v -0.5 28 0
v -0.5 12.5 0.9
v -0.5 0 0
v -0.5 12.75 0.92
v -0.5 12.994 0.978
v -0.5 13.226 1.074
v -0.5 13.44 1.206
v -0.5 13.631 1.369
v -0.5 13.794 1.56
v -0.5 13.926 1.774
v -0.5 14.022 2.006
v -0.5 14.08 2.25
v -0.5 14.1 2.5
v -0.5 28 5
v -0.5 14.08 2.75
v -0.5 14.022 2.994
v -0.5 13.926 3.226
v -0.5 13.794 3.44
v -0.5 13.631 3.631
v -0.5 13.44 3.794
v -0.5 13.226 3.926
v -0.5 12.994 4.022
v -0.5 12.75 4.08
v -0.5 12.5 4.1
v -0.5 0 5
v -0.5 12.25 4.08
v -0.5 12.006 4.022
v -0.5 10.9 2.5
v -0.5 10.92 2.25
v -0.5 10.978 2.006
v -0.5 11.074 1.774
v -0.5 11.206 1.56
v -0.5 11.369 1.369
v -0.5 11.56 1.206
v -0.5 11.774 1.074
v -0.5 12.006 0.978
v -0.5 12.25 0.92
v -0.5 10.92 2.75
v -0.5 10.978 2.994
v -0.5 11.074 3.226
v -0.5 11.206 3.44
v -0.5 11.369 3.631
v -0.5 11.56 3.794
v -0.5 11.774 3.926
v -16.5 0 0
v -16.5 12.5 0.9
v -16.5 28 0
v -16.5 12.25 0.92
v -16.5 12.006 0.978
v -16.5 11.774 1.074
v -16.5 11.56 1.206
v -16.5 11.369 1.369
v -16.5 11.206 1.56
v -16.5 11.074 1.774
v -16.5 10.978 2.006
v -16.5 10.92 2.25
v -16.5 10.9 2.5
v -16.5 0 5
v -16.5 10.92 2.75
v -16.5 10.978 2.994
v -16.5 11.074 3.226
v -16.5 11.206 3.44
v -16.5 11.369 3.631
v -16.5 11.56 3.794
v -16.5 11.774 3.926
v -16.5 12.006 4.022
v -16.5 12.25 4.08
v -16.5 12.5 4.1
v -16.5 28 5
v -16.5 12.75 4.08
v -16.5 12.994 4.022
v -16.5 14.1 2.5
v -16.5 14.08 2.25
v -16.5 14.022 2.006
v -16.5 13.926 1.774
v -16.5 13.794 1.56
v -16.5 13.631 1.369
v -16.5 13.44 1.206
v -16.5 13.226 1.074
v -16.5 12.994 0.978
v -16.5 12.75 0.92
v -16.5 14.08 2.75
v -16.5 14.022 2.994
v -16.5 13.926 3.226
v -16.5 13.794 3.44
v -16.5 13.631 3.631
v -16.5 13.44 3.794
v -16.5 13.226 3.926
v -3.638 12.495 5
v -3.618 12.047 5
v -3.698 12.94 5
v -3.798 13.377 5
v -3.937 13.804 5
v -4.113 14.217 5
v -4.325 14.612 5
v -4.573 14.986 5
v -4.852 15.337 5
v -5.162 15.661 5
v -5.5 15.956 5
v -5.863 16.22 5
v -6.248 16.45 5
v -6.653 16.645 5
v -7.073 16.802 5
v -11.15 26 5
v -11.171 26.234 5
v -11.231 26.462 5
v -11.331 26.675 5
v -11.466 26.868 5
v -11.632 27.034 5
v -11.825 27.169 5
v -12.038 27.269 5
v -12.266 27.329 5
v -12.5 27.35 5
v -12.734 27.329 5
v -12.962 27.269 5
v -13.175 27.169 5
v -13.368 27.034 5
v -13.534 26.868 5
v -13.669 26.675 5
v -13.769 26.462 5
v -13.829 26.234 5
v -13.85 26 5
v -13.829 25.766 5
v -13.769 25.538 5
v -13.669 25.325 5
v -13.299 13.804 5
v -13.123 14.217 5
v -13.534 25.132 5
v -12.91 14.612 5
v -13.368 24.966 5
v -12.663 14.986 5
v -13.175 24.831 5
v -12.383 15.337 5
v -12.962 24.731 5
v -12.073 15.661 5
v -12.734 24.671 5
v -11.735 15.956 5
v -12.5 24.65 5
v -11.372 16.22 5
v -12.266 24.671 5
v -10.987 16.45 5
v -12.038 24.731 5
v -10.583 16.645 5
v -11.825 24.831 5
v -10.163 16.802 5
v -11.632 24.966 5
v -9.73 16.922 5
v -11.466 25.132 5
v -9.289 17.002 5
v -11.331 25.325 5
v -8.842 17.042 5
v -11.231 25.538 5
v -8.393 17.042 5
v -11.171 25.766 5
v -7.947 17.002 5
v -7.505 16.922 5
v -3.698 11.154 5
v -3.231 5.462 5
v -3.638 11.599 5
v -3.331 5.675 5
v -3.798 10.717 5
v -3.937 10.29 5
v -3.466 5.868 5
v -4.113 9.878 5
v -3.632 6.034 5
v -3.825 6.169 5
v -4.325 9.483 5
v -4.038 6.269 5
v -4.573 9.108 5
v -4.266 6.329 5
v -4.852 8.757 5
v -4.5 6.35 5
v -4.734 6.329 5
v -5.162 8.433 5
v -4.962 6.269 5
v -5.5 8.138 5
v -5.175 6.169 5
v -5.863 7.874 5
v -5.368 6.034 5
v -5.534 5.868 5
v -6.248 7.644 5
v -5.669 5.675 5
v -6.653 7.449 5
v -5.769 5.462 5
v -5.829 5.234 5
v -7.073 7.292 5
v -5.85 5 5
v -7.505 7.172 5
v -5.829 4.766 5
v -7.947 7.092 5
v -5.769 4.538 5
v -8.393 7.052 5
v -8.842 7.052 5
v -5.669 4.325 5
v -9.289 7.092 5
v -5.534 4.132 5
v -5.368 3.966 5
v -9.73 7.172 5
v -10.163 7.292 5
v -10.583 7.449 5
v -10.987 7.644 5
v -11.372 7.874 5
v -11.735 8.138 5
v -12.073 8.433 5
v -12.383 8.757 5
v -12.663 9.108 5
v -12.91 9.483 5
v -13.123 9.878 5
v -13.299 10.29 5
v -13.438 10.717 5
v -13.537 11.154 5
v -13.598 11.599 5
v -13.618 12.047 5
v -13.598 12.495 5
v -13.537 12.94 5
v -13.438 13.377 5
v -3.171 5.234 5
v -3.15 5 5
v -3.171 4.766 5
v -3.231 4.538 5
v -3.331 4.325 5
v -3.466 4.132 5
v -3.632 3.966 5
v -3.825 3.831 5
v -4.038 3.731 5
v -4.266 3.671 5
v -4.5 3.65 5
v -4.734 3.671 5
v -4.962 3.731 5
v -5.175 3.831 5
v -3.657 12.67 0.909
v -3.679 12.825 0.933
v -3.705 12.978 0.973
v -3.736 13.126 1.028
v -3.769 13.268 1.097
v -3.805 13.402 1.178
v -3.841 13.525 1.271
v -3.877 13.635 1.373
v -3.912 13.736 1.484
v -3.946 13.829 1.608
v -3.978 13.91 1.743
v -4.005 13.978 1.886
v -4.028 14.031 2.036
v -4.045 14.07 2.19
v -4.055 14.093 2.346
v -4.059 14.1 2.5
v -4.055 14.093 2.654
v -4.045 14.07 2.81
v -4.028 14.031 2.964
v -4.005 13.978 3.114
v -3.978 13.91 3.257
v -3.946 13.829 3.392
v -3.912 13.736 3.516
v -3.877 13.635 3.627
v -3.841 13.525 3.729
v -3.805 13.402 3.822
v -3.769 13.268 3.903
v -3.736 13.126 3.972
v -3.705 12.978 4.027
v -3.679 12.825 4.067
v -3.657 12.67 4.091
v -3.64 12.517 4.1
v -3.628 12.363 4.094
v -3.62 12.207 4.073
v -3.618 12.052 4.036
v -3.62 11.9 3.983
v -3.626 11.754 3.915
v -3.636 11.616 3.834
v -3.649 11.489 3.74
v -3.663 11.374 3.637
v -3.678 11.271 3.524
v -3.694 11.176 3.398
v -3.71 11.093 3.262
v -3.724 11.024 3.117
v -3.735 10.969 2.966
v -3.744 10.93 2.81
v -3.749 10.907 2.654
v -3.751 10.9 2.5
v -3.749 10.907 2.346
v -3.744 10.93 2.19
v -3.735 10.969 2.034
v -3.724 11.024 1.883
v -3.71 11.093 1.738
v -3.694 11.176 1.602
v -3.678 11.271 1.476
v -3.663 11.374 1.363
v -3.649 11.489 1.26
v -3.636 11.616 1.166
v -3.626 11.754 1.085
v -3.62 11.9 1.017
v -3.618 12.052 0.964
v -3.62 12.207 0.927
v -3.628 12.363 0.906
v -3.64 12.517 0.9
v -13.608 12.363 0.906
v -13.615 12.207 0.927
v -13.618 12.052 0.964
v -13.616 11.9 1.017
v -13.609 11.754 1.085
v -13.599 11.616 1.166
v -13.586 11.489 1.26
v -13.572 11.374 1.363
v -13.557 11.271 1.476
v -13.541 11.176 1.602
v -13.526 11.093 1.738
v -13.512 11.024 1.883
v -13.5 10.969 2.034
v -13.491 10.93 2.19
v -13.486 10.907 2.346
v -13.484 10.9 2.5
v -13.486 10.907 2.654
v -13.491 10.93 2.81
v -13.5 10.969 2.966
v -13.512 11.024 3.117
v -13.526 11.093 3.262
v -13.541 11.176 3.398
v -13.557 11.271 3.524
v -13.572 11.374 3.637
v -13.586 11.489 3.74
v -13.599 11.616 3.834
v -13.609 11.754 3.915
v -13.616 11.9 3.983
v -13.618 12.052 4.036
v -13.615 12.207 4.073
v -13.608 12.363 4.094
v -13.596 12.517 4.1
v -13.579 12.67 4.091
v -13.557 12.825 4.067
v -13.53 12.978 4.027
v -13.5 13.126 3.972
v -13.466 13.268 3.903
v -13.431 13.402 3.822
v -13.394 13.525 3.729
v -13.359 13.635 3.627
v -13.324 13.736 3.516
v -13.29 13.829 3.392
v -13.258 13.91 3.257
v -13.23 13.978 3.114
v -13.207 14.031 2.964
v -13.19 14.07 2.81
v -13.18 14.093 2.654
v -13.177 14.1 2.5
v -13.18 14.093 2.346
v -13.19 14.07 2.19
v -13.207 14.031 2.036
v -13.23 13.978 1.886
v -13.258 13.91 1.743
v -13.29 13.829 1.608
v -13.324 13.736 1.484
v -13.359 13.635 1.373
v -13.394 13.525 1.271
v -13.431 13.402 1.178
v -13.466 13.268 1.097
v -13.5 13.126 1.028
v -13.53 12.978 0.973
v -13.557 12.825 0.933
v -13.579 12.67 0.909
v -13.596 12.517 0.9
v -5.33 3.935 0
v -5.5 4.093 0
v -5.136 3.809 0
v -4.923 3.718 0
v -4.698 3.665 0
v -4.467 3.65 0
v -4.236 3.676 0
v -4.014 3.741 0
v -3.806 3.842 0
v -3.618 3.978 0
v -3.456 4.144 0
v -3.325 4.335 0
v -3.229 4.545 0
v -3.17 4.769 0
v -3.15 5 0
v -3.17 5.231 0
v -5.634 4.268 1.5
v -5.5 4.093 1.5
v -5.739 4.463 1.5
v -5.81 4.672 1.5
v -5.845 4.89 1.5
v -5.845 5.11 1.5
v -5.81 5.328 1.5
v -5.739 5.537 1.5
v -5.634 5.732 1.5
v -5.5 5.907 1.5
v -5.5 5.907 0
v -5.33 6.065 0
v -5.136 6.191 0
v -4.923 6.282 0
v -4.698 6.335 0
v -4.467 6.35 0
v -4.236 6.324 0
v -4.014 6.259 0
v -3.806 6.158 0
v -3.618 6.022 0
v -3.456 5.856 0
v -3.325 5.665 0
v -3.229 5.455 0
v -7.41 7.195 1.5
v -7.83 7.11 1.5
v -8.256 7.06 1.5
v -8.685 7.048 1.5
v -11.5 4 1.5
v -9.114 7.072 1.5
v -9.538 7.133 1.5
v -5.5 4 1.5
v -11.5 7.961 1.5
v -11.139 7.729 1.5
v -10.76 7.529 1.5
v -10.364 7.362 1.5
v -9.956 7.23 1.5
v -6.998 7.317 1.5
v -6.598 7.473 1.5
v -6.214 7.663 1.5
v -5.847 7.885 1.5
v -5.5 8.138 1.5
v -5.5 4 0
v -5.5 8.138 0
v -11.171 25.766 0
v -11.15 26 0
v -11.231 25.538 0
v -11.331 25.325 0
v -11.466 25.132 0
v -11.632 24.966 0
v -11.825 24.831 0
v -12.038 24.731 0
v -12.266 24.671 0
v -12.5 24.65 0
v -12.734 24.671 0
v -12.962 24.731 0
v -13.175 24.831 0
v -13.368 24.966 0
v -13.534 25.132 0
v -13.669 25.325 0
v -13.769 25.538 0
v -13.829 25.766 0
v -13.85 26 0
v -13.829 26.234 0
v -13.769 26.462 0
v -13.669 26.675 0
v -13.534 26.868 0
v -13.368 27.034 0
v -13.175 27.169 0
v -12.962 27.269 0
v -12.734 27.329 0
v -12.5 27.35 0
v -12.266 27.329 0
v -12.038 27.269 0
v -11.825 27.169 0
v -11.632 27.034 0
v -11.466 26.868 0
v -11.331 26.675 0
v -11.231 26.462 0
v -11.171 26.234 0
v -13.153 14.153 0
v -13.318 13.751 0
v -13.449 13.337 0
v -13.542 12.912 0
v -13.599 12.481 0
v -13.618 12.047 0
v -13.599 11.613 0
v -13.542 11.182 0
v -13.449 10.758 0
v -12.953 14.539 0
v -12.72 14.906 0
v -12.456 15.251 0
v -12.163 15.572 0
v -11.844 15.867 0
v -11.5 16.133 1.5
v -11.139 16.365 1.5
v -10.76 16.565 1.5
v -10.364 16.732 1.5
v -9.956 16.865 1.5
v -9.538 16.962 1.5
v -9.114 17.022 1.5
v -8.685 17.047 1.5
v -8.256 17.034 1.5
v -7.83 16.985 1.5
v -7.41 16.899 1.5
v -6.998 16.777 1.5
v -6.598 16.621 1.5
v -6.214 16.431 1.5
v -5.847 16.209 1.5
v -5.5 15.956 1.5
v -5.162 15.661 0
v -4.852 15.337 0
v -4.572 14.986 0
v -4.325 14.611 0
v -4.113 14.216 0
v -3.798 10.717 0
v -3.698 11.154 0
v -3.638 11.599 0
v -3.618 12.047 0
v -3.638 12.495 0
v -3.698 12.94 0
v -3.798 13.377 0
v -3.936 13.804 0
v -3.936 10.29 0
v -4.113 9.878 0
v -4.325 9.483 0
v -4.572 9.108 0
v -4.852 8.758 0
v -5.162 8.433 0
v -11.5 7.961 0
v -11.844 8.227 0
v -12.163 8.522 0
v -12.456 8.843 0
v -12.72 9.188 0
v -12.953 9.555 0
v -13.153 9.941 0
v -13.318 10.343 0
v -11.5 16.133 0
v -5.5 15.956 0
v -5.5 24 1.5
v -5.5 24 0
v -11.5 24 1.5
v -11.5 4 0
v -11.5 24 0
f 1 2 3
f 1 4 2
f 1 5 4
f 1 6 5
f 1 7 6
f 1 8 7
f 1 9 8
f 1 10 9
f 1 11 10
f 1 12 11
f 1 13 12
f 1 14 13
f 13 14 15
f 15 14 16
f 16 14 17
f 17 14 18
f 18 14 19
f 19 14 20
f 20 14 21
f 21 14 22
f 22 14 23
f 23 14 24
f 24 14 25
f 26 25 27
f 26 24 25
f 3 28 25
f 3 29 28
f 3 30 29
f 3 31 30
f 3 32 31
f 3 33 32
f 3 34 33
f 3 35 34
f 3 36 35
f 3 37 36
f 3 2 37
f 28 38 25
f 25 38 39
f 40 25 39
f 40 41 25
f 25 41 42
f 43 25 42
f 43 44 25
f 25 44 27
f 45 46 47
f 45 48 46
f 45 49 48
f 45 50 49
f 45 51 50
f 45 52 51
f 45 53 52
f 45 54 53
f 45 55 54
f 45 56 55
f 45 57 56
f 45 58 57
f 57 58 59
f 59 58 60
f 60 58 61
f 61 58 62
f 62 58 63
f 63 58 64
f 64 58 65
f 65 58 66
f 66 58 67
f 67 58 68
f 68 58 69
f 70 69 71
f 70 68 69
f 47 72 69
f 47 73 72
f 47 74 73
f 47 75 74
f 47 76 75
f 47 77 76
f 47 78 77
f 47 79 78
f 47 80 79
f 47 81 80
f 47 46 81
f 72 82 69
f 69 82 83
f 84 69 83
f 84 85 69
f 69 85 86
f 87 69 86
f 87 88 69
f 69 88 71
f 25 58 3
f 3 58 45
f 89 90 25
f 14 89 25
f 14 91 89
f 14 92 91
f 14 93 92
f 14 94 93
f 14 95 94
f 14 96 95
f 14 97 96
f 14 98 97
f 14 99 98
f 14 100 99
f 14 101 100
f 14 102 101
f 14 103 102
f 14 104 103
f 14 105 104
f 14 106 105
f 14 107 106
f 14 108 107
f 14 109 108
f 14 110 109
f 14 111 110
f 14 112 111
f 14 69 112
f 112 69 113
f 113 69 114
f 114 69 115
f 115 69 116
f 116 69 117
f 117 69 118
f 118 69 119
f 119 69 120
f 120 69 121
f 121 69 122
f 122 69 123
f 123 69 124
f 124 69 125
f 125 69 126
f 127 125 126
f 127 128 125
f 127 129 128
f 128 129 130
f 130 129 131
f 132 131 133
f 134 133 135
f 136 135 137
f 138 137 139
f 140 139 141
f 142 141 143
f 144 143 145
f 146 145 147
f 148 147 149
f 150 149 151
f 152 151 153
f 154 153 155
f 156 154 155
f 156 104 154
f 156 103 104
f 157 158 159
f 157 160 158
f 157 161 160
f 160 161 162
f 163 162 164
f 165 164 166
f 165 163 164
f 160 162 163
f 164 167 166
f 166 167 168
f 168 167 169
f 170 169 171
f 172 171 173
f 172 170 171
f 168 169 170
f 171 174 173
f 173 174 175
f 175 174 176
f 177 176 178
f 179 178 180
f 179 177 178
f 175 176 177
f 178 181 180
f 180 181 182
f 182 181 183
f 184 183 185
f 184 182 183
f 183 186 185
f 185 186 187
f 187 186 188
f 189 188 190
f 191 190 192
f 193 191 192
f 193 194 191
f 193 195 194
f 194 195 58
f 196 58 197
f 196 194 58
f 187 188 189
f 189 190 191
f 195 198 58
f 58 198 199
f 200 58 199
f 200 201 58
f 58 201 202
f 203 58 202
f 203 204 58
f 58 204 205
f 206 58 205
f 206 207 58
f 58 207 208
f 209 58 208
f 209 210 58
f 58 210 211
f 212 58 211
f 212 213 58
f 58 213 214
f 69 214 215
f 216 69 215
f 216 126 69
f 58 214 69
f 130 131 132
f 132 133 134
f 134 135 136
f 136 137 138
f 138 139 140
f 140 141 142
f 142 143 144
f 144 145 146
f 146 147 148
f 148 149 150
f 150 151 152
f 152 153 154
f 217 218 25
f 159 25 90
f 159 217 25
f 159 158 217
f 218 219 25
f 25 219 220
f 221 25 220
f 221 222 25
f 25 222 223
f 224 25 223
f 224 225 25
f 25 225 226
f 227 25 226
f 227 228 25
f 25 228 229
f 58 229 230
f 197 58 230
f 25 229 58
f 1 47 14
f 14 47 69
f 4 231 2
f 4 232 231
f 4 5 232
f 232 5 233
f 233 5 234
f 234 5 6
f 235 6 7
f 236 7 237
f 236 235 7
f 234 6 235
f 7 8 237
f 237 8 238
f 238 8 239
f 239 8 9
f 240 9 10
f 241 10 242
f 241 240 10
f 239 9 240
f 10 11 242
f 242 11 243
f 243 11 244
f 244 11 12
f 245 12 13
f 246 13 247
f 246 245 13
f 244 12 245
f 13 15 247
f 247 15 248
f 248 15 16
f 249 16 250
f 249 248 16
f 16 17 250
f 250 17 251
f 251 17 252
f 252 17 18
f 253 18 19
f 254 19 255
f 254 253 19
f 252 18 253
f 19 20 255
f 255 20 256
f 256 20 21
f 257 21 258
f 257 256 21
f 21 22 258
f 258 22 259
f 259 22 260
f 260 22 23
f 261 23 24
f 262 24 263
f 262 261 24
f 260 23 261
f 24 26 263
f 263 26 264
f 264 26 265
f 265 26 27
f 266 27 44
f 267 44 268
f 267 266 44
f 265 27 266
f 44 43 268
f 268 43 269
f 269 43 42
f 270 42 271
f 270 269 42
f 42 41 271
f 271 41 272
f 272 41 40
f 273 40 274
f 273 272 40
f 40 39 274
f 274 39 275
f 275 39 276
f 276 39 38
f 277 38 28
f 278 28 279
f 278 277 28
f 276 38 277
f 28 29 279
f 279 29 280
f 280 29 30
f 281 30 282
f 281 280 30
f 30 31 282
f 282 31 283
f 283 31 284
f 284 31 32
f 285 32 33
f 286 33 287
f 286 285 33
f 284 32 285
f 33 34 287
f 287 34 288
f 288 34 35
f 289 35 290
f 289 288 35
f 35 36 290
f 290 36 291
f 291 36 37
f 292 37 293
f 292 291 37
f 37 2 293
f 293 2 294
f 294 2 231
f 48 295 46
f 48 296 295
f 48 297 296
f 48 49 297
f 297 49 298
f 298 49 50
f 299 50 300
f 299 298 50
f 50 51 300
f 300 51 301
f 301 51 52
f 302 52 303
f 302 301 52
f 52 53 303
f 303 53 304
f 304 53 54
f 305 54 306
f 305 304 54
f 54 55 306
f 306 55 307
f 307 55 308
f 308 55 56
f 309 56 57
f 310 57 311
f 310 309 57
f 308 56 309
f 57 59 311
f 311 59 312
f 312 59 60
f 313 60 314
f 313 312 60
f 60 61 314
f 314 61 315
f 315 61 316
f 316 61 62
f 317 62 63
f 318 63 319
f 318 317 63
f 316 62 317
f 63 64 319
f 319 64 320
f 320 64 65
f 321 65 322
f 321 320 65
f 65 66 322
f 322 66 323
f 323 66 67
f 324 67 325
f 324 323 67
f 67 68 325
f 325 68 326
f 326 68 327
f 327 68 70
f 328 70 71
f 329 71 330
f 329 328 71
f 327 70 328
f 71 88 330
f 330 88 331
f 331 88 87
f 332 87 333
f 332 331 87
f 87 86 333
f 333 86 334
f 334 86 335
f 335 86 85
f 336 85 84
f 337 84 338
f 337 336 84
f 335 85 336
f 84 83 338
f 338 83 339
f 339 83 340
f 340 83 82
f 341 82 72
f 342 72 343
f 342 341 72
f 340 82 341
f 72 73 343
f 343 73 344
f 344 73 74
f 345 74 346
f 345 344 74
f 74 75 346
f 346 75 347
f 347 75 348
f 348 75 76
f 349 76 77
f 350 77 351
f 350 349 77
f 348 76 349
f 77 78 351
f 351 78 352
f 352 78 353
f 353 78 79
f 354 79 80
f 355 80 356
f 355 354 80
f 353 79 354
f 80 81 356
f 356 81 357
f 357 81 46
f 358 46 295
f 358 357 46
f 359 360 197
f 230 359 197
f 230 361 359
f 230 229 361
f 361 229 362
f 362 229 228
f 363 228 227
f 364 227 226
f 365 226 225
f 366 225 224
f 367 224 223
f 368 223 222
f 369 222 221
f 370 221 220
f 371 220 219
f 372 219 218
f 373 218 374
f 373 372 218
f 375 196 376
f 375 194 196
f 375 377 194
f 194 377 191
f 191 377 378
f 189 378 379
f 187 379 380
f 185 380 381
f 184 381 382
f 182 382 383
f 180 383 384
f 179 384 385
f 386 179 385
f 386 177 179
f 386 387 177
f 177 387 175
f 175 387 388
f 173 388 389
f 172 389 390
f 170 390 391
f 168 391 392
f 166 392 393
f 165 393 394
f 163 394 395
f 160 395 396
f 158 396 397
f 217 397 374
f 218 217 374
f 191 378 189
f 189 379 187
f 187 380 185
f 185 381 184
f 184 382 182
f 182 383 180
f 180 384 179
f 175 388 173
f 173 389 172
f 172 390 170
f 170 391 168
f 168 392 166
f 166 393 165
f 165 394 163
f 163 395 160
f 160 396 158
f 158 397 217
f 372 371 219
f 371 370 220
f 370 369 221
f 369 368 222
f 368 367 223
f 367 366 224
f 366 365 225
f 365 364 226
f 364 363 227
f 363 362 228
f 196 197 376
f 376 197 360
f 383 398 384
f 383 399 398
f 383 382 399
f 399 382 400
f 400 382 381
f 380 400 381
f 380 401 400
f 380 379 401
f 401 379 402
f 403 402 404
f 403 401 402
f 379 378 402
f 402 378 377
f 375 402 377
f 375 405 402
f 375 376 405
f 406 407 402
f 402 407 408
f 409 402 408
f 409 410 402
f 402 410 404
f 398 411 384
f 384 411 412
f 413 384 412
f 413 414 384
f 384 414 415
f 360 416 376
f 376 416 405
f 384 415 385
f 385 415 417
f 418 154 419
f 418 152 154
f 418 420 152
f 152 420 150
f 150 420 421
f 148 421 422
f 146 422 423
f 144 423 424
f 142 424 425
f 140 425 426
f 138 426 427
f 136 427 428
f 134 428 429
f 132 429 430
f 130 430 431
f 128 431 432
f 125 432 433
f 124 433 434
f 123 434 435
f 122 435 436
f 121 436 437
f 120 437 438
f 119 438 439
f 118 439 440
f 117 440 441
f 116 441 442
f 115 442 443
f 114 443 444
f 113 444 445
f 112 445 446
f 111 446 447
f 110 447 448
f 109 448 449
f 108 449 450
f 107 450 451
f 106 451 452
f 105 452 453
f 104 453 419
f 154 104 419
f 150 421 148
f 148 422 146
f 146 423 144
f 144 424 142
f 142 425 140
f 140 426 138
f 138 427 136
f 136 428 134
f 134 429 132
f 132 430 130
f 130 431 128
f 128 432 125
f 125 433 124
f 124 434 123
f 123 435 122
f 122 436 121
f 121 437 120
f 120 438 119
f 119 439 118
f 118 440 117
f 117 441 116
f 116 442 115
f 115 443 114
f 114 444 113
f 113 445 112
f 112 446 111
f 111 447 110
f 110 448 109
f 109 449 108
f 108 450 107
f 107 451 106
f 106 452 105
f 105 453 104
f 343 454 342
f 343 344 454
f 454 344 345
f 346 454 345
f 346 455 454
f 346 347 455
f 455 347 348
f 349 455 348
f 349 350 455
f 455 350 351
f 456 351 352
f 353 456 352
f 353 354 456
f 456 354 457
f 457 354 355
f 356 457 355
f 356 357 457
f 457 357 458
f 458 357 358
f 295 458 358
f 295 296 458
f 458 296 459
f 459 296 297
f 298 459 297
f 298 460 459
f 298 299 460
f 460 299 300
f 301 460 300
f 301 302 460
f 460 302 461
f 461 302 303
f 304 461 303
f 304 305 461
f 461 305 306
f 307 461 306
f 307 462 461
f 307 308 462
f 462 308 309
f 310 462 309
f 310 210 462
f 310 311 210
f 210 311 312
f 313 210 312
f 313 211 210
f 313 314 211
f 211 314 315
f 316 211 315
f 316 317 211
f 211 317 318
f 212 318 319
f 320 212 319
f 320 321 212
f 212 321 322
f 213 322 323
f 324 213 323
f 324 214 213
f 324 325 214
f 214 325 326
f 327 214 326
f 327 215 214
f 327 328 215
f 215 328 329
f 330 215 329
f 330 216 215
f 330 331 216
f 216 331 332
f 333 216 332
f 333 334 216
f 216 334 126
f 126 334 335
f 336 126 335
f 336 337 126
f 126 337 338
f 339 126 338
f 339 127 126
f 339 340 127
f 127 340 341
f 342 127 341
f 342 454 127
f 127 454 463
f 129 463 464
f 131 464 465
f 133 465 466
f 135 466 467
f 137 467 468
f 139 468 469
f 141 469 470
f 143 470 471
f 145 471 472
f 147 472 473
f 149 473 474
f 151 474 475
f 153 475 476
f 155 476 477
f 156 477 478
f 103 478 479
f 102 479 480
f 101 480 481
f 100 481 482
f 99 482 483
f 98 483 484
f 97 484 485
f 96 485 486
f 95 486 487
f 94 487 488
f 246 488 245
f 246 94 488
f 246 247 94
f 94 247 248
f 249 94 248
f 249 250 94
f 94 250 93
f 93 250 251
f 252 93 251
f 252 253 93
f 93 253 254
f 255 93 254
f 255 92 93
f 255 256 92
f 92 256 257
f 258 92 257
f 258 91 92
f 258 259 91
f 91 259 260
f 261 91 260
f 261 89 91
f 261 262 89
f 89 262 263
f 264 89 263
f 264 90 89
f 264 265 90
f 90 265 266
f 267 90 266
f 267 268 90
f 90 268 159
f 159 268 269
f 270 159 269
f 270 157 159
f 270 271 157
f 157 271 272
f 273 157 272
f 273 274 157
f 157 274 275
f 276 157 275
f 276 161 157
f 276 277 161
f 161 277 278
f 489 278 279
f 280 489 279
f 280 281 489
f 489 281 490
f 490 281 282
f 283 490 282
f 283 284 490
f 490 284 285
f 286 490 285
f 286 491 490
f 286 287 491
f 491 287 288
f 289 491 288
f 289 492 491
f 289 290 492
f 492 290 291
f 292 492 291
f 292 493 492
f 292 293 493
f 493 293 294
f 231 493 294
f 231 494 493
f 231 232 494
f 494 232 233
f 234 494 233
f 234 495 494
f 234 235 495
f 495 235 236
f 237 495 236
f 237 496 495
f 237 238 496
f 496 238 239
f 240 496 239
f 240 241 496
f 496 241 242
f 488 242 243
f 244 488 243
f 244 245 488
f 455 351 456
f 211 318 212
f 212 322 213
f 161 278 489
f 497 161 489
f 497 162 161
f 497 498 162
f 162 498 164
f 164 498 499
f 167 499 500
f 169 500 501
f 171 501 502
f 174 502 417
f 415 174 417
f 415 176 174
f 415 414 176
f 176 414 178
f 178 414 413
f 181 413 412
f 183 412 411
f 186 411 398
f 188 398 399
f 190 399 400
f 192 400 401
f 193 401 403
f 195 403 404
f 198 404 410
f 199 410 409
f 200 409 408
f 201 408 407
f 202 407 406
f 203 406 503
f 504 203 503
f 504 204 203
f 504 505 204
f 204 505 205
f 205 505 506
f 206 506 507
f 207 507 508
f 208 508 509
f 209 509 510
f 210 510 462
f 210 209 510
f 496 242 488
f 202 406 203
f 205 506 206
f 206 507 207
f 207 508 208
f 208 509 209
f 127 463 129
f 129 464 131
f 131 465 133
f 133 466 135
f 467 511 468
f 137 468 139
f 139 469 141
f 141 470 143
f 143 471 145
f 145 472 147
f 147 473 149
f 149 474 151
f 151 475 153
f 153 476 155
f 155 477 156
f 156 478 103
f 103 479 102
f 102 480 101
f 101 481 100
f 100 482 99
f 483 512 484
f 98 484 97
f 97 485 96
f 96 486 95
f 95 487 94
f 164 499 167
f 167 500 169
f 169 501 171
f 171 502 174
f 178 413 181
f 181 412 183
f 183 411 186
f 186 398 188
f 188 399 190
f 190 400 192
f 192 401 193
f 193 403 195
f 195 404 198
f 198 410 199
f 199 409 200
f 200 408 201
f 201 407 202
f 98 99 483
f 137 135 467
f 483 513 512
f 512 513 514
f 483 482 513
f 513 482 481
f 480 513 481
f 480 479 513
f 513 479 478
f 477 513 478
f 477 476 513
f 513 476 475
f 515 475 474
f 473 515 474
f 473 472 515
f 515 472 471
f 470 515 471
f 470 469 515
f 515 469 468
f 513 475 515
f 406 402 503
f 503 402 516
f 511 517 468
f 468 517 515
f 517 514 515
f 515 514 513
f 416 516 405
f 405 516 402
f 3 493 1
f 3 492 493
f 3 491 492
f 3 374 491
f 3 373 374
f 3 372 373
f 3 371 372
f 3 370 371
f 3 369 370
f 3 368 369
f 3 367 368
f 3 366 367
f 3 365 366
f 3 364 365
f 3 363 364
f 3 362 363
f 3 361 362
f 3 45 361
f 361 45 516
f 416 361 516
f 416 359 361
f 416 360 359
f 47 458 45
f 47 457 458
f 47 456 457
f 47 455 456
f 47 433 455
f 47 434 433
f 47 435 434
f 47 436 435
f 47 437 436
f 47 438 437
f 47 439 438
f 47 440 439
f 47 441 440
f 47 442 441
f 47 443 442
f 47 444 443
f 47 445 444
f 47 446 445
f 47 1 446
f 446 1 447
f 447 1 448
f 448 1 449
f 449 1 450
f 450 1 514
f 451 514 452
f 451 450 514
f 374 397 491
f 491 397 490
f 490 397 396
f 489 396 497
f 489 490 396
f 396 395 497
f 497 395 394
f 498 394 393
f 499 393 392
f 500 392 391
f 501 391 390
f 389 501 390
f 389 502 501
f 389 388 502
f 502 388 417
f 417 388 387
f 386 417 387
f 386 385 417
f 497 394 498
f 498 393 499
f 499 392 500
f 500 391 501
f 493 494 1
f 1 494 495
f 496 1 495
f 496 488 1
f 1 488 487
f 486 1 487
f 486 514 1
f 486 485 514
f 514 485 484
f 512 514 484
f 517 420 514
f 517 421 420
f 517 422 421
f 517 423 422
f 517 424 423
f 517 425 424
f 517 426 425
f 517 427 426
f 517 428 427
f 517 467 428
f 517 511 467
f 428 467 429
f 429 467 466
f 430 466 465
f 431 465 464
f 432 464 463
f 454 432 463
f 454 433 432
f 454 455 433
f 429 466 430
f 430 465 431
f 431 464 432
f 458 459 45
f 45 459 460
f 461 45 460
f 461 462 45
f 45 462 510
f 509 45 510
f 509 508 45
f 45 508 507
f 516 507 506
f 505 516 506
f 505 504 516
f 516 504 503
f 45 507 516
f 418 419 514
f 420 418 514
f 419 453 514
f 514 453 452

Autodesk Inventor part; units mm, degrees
ref_plane "YZ Plane" through (0, 0, 0) normal (1, 0, 0) x (0, 1, 0)
ref_plane "XZ Plane" through (0, 0, 0) normal (0, 1, 0) x (-1, 0, 0)
ref_plane "XY Plane" through (0, 0, 0) normal (0, 0, 1) x (1, 0, 0)
sketch "Sketch2" plane through (0, 0, 0) normal (0, 0, 1) x (1, 0, 0)
  line L0 (-17, 28) -> (0, 28)
  line L1 (0, 28) -> (0, 17)
  line L2 (0, 7) -> (0, 0)
  line L3 (0, 0) -> (-17, 0)
  line L4 (-17, 0) -> (-17, 7)
  line L5 (-17, 28) -> (-17, 17)
  line L6 (-17, 17) -> (-17, 7)
  line L7 (0, 17) -> (0, 7)
  dimension "d0" = 17
  dimension "d1" = 28
extrude "Extrusion1" add sketch "Sketch2" along normal blind 5
sketch "Sketch4" plane through (0, 0, 0) normal (0, 0, -1) x (-1, 0, 0)
  line L0 (17, 28) -> (0, 28) projected
  line L1 (0, 28) -> (0, 0) projected
  line L2 (0, 0) -> (17, 0) projected
  line L3 (17, 0) -> (17, 28) projected
  line L4 (0, 28) -> (17, 28) projected
  line L5 (11.5, 24) -> (11.5, 4)
  line L6 (11.5, 4) -> (5.5, 4)
  line L7 (5.5, 4) -> (5.5, 24)
  line L8 (5.5, 24) -> (11.5, 24)
  dimension "d15" = 6
  dimension "d17" = 5.5
  dimension "d30" = 20
  dimension "d31" = 4
extrude "Extrusion3" cut sketch "Sketch4" against normal blind 1.5 contours L5 L6 L7 L8
sketch "Sketch5" plane through (0, 0, 5) normal (0, 0, 1) x (1, 0, 0)
  line L0 (0, 28) -> (-17, 28) projected
  line L1 (-17, 28) -> (-17, 0) projected
  line L2 (-17, 0) -> (0, 0) projected
  line L3 (0, 0) -> (0, 28) projected
  line L4 (-21, 17) -> (4, 7)
  line L5 (-21.4753, 7) -> (4, 17)
  circle A0 centre (-8.6177, 12.0471) radius 5
  dimension "d20" = 10
  dimension "d21" = 12.0471
extrude "Extrusion4" cut sketch "Sketch5" against normal through all contours A0 L4 L5 | L5 L4 A0 | L4 L5 A0 | A0 L5 L4
sketch "Sketch6" plane through (0, 0, 5) normal (0, 0, 1) x (1, 0, 0)
  circle A0 centre (-8.6177, 12.0471) radius 5 projected
  line L0 (0, 28) -> (-17, 28) projected
  line L1 (-17, 28) -> (-17, 0) projected
  line L2 (-17, 0) -> (0, 0) projected
  line L3 (0, 0) -> (0, 28) projected
  circle A1 centre (-12.5, 26) radius 1.35
  dimension "d24" = 2.7
  dimension "d25" = 4.5
  dimension "d26" = 2
extrude "Extrusion5" cut sketch "Sketch6" against normal through all contours A1
sketch "Sketch7" plane through (0, 0, 5) normal (0, 0, 1) x (1, 0, 0)
  line L0 (0, 0) -> (0, 28) projected
  line L1 (-17, 0) -> (0, 0) projected
  circle A0 centre (-4.5, 5) radius 1.35
  point P0 (0, 7)
  dimension "d32" = 2.7
  dimension "d33" = 4.5
  dimension "d34" = 5
extrude "Extrusion6" cut sketch "Sketch7" against normal through all
sketch "Sketch8" plane through (0, 0, 0) normal (1, 0, 0) x (0, 0, -1)
  circle A0 centre (-2.5, 12.5) radius 1.6
  line L0 (-5, 0) -> (-5, 28) projected
  line L1 (0, 0) -> (-5, 0) projected
  point P0 (0, -7)
  dimension "d37" = 3.2
  dimension "d41" = 12.5
  dimension "d49" = 2.5
extrude "Extrusion8" cut sketch "Sketch8" against normal through all
sketch "Sketch9" plane through (0, 0, 5) normal (0, 0, 1) x (1, 0, 0)
  circle A0 centre (-4.5, 5) radius 1.35 projected
  circle A1 centre (-12.5, 26) radius 1.35 projected
  circle A2 centre (-8.6177, 12.0471) radius 5 projected
  line L0 (0, 28) -> (-17, 28) projected
  line L1 (-17, 28) -> (-17, 0) projected
  line L2 (-17, 0) -> (0, 0) projected
  line L3 (0, 0) -> (0, 28) projected
  line L4 (-17, 0) -> (-16.5, 0)
  line L5 (-16.5, 0) -> (-16.5, 28)
  line L6 (-16.5, 28) -> (-17, 28)
  line L7 (-17, 28) -> (-17, 0)
  line L8 (0, 0) -> (-0.5, 0)
  line L9 (-0.5, 0) -> (-0.5, 28)
  line L10 (-0.5, 28) -> (0, 28)
  line L11 (0, 28) -> (0, 0)
  dimension "d47" = 0.5
  dimension "d48" = 0.5
extrude "Extrusion9" cut sketch "Sketch9" against normal through all contours L3 L2 L9 L0 | L5 L2 L1 L0
properties part number "tapaB0.2"
